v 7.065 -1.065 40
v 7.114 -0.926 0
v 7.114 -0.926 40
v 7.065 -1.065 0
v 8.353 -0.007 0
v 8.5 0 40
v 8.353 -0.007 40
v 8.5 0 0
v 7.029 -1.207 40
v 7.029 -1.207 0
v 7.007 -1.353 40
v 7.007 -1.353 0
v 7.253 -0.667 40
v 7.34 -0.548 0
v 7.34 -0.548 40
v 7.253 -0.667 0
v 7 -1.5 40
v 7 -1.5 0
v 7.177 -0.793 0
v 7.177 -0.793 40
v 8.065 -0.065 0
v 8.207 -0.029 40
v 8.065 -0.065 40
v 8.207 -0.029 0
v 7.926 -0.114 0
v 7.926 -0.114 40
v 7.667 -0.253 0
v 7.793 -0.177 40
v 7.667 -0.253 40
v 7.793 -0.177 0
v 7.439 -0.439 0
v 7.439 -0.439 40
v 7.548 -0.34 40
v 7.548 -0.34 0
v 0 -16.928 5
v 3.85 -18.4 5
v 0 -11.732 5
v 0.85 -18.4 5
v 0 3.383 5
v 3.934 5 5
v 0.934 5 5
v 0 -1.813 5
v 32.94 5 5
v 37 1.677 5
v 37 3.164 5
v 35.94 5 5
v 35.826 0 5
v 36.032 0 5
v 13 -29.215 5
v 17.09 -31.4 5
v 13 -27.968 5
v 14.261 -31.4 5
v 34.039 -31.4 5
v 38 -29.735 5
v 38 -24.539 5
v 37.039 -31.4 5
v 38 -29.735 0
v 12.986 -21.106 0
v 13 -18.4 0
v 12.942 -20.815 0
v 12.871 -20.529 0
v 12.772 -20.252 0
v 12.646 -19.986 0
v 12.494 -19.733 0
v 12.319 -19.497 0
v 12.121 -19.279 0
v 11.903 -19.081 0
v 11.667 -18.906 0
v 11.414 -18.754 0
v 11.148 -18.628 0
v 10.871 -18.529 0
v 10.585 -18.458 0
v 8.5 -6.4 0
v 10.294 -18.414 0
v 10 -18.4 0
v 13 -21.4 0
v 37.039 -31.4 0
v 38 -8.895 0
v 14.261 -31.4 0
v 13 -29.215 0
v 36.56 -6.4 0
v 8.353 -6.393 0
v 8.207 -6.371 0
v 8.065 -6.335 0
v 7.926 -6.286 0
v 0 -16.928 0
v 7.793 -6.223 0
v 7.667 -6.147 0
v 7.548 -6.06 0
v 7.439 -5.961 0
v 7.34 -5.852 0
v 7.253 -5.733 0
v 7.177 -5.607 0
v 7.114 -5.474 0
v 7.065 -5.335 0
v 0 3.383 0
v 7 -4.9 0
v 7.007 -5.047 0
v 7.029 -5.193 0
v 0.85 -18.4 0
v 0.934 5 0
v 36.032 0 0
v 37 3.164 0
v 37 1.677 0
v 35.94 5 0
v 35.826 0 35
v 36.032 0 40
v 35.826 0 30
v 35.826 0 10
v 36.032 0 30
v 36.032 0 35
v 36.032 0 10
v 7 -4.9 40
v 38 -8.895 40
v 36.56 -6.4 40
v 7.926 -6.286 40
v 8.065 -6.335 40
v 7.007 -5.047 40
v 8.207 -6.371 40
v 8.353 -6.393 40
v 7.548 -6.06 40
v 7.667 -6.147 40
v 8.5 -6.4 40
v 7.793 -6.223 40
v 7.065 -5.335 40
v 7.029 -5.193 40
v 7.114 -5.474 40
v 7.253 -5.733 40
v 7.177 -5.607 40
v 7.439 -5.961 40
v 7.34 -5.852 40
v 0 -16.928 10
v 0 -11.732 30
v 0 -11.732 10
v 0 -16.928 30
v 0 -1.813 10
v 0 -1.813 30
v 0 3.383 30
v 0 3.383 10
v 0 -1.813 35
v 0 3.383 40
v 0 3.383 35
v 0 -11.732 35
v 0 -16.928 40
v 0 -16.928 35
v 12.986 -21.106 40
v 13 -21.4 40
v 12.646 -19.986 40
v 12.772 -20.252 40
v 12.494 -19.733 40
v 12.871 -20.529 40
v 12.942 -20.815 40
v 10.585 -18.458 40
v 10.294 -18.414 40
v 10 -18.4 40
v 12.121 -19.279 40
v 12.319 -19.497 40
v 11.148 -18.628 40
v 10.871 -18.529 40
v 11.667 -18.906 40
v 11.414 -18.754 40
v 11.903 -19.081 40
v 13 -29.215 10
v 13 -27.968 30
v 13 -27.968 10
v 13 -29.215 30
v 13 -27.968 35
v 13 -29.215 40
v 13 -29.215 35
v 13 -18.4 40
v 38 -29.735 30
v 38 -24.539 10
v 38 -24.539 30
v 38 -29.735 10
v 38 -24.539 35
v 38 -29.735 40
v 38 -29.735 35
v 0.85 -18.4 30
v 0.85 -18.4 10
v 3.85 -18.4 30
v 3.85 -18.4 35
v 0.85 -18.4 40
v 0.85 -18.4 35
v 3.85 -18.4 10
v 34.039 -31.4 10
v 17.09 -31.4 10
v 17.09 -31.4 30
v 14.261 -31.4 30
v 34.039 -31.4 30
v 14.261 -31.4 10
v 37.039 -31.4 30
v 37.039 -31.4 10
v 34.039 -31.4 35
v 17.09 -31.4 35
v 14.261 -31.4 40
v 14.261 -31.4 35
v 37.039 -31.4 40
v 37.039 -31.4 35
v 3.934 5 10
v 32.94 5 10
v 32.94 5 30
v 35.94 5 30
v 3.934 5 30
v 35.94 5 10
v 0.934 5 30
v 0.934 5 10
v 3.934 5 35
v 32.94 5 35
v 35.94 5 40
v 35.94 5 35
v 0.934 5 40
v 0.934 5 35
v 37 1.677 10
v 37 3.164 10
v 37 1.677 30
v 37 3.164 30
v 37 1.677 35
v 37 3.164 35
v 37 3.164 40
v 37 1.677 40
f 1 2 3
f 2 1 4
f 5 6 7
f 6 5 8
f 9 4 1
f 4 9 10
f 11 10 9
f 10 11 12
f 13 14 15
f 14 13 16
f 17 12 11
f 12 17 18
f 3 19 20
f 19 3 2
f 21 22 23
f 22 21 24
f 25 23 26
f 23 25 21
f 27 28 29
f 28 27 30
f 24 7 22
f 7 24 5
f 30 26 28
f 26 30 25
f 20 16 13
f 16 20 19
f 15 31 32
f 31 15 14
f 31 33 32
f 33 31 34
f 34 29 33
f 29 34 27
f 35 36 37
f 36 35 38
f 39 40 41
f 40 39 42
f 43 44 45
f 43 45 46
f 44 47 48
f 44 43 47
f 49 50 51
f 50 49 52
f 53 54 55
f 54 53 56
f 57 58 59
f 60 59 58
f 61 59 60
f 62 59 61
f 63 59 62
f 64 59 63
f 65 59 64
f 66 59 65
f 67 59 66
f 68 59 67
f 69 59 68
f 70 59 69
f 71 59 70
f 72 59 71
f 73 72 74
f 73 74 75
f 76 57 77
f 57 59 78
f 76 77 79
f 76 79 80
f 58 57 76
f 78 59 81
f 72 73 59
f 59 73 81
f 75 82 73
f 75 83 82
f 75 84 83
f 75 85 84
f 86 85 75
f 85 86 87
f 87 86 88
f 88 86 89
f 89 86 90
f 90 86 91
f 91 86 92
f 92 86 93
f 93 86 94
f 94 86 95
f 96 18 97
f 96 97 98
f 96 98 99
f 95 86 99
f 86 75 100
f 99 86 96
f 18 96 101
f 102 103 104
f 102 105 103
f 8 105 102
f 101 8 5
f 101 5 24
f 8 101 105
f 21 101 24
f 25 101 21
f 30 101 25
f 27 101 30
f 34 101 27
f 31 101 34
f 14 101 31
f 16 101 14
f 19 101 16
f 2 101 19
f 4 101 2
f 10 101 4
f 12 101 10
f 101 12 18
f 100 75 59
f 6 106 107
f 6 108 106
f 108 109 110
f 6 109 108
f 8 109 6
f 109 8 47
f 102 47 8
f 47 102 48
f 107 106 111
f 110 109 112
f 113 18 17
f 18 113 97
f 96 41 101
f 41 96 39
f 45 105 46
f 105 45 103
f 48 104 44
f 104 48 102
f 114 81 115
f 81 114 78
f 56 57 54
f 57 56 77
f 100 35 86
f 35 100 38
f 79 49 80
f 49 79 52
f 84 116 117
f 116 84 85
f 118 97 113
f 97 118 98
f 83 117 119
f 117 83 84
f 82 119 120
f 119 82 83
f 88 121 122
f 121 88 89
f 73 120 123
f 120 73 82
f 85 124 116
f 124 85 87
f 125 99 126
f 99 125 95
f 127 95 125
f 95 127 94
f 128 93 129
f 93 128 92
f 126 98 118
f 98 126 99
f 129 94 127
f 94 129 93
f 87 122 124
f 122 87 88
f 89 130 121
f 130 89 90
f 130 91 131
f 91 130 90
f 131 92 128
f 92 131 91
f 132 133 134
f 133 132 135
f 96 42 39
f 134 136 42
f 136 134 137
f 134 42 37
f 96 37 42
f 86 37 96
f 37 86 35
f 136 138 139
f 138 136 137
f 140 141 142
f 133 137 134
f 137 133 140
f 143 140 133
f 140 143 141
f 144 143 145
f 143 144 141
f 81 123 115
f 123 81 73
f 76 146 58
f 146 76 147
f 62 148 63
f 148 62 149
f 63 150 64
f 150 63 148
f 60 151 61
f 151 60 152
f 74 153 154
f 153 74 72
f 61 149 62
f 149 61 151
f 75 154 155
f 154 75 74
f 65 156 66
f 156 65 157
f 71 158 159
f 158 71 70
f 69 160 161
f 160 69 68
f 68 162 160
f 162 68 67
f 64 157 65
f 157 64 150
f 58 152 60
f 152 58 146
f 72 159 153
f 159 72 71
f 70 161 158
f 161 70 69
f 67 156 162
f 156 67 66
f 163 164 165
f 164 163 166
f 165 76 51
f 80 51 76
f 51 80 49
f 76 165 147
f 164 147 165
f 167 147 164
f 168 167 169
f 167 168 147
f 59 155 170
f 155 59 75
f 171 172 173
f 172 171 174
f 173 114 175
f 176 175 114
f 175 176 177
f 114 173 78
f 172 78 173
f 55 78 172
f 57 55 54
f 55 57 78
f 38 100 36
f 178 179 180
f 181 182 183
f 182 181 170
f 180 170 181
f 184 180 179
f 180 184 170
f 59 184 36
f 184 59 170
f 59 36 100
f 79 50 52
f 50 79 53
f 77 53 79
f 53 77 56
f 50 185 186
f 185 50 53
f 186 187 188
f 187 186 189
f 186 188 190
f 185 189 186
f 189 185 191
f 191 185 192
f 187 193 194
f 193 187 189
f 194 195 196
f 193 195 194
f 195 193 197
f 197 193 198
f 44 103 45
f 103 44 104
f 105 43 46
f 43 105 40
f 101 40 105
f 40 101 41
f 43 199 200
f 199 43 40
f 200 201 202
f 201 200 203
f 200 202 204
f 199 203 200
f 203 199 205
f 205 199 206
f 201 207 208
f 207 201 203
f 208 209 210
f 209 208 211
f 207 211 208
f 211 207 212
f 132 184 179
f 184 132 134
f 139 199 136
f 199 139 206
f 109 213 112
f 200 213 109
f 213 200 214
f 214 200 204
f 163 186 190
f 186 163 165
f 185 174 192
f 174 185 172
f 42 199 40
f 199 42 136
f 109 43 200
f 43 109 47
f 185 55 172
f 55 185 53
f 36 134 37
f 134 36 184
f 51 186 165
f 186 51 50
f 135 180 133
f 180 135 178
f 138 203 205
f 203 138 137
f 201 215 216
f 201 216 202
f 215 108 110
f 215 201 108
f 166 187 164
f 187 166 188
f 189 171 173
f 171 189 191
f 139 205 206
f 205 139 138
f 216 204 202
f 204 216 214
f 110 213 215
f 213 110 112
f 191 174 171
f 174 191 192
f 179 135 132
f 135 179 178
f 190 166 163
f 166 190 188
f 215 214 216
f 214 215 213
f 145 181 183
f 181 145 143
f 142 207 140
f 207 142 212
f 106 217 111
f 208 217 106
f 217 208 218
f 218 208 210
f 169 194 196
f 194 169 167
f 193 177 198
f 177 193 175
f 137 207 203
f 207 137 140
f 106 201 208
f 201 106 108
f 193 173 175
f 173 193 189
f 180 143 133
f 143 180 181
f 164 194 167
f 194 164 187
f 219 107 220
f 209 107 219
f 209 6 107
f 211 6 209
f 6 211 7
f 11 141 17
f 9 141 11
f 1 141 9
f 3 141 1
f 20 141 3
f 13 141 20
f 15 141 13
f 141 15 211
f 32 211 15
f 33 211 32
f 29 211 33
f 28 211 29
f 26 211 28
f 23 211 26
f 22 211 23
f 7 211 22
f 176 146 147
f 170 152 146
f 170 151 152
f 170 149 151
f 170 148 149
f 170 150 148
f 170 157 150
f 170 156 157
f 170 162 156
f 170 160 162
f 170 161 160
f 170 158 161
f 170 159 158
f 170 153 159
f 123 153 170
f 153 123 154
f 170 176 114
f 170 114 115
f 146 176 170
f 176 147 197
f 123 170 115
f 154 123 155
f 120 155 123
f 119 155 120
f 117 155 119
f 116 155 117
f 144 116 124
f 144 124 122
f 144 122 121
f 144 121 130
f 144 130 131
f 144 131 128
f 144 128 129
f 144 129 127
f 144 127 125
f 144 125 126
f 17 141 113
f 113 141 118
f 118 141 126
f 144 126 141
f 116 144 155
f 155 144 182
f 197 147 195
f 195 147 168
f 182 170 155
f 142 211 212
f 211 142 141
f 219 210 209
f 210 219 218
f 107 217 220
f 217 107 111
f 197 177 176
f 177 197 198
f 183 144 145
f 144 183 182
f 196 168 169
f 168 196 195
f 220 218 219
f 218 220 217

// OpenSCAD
/**
 * A clamp/clip that holds bed frame pieces together.
 *
 * The clamps that keep our bed frame together disappeared somewhere in a move, so I had to come up with something real quick-like. This will do the trick.
 *
 * Install two clamps per rail, each with two zipties, and you're good to go.
 *
 * The easiest way to modify the size of this piece is to change the values of the endcapSize and middleSize variables. The rest of the model will adjust to those changes. The default settings give you a model that is 40mm wide with 5mm on either size of the zipties.
 *
 * Given the need for this part to take stress, I recommend printing in ABS with a high number of perimeters and solid layers and high infill. I used 5 perimeters and solid layers with 50% infill.
 *
 * 2019-09-03: costmo
 * https://github.com/appideasDOTcom/3dPrinterModels
 * https://appideas.com/blog
**/

// Render quality settings. This model is all cubes, so this probably won't have much effect.
$fa = 1;
$fs = 0.1;

// How tall to make the top on the Y axis. Not too thin or the pirce will be weak. Not too thick or it will not fit under the box spring.
topThickness = 5;
// How tall to make the piece that's below the elbow
bottomThickness = 12;
// Girth to add behind the elbow
elbowThickness = 7;

// Length of the top piece on the X axis
topLength = 30;
// The size of the openings for the rails on the Y axis
elbowHeight = 6.4;
// Length of the bottom piece (prior to the "support") on the Y axis
bottomLength = 31;
// How tall to make the bottom piece on the Y axis
bottomSupportLength = (25 - bottomThickness);
// Size of the bottom support on the X axis
bottomSupportThickness = 25;

// Width of ziptie cutouts
ziptieWidth = 5;

// These variables determine the overall length of the object (which is "height" from the printer's perspective)
// Overall length will be: (endcapSize * 2) + (ziptieWidth * 2) + middleSize
// Size of endcaps on the Z axis
endcapSize = 5;
// Size of the middle secion on the Z axis (between the ziptie cutouts)
middleSize = 20;

// Do it!
makeThing();

// Put the pieces together
module makeThing()
{
    union()
    {
        // endcap
        fullPiece( endcapSize );

        // First ziptie
        translate( [0, 0, endcapSize] )
        {
            ziptieCutout();
        }

        // Middle section
        translate( [0, 0, (endcapSize + ziptieWidth)] )
        {
            fullPiece( middleSize );
        }

        // second ziptie
        translate( [0, 0, (endcapSize + ziptieWidth + middleSize)] )
        {
            ziptieCutout();
        }

        // endcap
        translate( [0, 0, (endcapSize + ziptieWidth + middleSize + endcapSize)] )
        {
            fullPiece( endcapSize );
        }
    }
}

// A ziptie cutout piece as a modular unit
module ziptieCutout()
{
    difference()
    {
        {
            union()
            {
                top( ziptieWidth );
                elbow( ziptieWidth );
                bottom( ziptieWidth );
                bottomSupport( ziptieWidth );
            }
        }
        {
            union()
            {
                cornerCutouts( ziptieWidth );
                ziptieCutouts();
            }
        }
    }
}

// A full-sized piece as a modular unit
module fullPiece( width )
{
    difference()
    {
        {
            union()
            {
                top( width );
                elbow( width );
                bottom( width );
                bottomSupport( width );
            }
        }
        {
            union()
            {
                cornerCutouts( width );
            }
        }
    }
}

// Part of the model above the elbow (rail cutout)
module top( width )
{
    cube( [(topLength + elbowThickness), topThickness, width] );
}

// Cutout the place where the bed rails will live
module elbow( width )
{
    translate( [(elbowThickness + 1.5), -1.5, 0] )
    {
        rotate( [0, 0, -90] )
        {
            essCurve( d = 3, h = width );
        }
    }

    translate( [(elbowThickness + 1.5), (-1 * elbowHeight) + 1.5, 0] )
    {
        essCurve( d = 3, h = width );
    }

    translate( [0, (-1 * elbowHeight), 0] )
    {
        cube( [elbowThickness, elbowHeight, width] );
    }
}

// Part of the model below the elbow (rail cutout)
module bottom( width )
{
    translate( [0, ((-1 * elbowHeight) - bottomThickness), 0] )
    {
        cube( [(bottomLength + elbowThickness), bottomThickness, width] );
    }
}

// Part of the model beneath "bottom" for strength/stability
module bottomSupport( width )
{
    translate( [(bottomLength + elbowThickness - bottomSupportThickness - 3), (-3 - elbowHeight - bottomThickness), 0] )
    {
        rotate( [0, 0, 180] )
        {
            essCurve( d = 6, h = width );
        }
    }

    translate( [(bottomLength + elbowThickness - bottomSupportThickness), ((-1 * elbowHeight) - bottomThickness - bottomSupportLength), 0] )
    {
        cube( [bottomSupportThickness, bottomSupportLength, width] );
    }

    
}

// Impressions for iptie channels
module ziptieCutouts()
{
    translate( [-10.5, 0, 0] )
    {
        rotate( [0, 0, -30] )
        {
            cube( [10, 50, ziptieWidth] );
        }
    }

    translate( [41.6, -10, 0] )
    {
        rotate( [0, 0, 30] )
        {
            cube( [10, 50, ziptieWidth] );
        }
    }

    translate( [23.3, -50, 0] )
    {
        rotate( [0, 0, -30] )
        {
            cube( [10, 50, ziptieWidth] );
        }
    }

    translate( [-1, -30, 0] )
    {
        rotate( [0, 0, 30] )
        {
            cube( [10, 50, ziptieWidth] );
        }
    }

    translate( [38, -62, 0] )
    {
        rotate( [0, 0, 50] )
        {
            cube( [10, 50, ziptieWidth] );
        }
    }
}

// Cut 90 degree edges for better aesthetics and print quality
module cornerCutouts( width )
{
    translate( [-13.5, 0, -1] )
    {
        rotate( [0, 0, -30] )
        {
            cube( [10, 50, (width + 2)] );
        }
    }

    translate( [44.6, -10, -1] )
    {
        rotate( [0, 0, 30] )
        {
            cube( [10, 50, (width + 2)] );
        }
    }

    translate( [34.3, -3, -1] )
    {
        rotate( [0, 0, -30] )
        {
            cube( [10, 50, (width + 2)] );
        }
    }

    translate( [60, -47, -1] )
    {
        rotate( [0, 0, 30] )
        {
            cube( [10, 50, (width + 2)] );
        }
    }

    translate( [26.3, -50, -1] )
    {
        rotate( [0, 0, -30] )
        {
            cube( [10, 50, (width + 2)] );
        }
    }

    translate( [-4, -30, -1] )
    {
        rotate( [0, 0, 30] )
        {
            cube( [10, 50, (width + 2)] );
        }
    }

    translate( [25, -70, -1] )
    {
        rotate( [0, 0, 30] )
        {
            cube( [10, 50, (width + 2)] );
        }
    }

    
}

// Create an "S" shaped curve for model strength on what would otherwise be a corner
module essCurve( d, h )
{
  xDimension = d;
  yDimension = d;
  zDimension = h;

  difference()
    {
      {
        translate( [(-1 * (xDimension / 2)), (-1 * (yDimension / 2)), 0] )
        {
          cube( [xDimension, yDimension, zDimension] );
        }
      }
      {
        translate( [ 0, 0, -1 ] )
        {
          cube( [xDimension, yDimension, (zDimension + 2)] );

          translate( [0, (-1 * yDimension), 0] )
          {
            cube( [xDimension, yDimension, (zDimension + 2)] );
          }
          translate( [(-1 * xDimension), 0, 0] )
          {
            cube( [xDimension, yDimension, (zDimension + 2)] );
          }

          linear_extrude( height=(zDimension + 2), twist=0, scale=[1, 1], center=false)
          {
            $fn=64;    //set sides to 64
            circle(r=(xDimension / 2));
          }
          
        }

      }
    
  }
}
